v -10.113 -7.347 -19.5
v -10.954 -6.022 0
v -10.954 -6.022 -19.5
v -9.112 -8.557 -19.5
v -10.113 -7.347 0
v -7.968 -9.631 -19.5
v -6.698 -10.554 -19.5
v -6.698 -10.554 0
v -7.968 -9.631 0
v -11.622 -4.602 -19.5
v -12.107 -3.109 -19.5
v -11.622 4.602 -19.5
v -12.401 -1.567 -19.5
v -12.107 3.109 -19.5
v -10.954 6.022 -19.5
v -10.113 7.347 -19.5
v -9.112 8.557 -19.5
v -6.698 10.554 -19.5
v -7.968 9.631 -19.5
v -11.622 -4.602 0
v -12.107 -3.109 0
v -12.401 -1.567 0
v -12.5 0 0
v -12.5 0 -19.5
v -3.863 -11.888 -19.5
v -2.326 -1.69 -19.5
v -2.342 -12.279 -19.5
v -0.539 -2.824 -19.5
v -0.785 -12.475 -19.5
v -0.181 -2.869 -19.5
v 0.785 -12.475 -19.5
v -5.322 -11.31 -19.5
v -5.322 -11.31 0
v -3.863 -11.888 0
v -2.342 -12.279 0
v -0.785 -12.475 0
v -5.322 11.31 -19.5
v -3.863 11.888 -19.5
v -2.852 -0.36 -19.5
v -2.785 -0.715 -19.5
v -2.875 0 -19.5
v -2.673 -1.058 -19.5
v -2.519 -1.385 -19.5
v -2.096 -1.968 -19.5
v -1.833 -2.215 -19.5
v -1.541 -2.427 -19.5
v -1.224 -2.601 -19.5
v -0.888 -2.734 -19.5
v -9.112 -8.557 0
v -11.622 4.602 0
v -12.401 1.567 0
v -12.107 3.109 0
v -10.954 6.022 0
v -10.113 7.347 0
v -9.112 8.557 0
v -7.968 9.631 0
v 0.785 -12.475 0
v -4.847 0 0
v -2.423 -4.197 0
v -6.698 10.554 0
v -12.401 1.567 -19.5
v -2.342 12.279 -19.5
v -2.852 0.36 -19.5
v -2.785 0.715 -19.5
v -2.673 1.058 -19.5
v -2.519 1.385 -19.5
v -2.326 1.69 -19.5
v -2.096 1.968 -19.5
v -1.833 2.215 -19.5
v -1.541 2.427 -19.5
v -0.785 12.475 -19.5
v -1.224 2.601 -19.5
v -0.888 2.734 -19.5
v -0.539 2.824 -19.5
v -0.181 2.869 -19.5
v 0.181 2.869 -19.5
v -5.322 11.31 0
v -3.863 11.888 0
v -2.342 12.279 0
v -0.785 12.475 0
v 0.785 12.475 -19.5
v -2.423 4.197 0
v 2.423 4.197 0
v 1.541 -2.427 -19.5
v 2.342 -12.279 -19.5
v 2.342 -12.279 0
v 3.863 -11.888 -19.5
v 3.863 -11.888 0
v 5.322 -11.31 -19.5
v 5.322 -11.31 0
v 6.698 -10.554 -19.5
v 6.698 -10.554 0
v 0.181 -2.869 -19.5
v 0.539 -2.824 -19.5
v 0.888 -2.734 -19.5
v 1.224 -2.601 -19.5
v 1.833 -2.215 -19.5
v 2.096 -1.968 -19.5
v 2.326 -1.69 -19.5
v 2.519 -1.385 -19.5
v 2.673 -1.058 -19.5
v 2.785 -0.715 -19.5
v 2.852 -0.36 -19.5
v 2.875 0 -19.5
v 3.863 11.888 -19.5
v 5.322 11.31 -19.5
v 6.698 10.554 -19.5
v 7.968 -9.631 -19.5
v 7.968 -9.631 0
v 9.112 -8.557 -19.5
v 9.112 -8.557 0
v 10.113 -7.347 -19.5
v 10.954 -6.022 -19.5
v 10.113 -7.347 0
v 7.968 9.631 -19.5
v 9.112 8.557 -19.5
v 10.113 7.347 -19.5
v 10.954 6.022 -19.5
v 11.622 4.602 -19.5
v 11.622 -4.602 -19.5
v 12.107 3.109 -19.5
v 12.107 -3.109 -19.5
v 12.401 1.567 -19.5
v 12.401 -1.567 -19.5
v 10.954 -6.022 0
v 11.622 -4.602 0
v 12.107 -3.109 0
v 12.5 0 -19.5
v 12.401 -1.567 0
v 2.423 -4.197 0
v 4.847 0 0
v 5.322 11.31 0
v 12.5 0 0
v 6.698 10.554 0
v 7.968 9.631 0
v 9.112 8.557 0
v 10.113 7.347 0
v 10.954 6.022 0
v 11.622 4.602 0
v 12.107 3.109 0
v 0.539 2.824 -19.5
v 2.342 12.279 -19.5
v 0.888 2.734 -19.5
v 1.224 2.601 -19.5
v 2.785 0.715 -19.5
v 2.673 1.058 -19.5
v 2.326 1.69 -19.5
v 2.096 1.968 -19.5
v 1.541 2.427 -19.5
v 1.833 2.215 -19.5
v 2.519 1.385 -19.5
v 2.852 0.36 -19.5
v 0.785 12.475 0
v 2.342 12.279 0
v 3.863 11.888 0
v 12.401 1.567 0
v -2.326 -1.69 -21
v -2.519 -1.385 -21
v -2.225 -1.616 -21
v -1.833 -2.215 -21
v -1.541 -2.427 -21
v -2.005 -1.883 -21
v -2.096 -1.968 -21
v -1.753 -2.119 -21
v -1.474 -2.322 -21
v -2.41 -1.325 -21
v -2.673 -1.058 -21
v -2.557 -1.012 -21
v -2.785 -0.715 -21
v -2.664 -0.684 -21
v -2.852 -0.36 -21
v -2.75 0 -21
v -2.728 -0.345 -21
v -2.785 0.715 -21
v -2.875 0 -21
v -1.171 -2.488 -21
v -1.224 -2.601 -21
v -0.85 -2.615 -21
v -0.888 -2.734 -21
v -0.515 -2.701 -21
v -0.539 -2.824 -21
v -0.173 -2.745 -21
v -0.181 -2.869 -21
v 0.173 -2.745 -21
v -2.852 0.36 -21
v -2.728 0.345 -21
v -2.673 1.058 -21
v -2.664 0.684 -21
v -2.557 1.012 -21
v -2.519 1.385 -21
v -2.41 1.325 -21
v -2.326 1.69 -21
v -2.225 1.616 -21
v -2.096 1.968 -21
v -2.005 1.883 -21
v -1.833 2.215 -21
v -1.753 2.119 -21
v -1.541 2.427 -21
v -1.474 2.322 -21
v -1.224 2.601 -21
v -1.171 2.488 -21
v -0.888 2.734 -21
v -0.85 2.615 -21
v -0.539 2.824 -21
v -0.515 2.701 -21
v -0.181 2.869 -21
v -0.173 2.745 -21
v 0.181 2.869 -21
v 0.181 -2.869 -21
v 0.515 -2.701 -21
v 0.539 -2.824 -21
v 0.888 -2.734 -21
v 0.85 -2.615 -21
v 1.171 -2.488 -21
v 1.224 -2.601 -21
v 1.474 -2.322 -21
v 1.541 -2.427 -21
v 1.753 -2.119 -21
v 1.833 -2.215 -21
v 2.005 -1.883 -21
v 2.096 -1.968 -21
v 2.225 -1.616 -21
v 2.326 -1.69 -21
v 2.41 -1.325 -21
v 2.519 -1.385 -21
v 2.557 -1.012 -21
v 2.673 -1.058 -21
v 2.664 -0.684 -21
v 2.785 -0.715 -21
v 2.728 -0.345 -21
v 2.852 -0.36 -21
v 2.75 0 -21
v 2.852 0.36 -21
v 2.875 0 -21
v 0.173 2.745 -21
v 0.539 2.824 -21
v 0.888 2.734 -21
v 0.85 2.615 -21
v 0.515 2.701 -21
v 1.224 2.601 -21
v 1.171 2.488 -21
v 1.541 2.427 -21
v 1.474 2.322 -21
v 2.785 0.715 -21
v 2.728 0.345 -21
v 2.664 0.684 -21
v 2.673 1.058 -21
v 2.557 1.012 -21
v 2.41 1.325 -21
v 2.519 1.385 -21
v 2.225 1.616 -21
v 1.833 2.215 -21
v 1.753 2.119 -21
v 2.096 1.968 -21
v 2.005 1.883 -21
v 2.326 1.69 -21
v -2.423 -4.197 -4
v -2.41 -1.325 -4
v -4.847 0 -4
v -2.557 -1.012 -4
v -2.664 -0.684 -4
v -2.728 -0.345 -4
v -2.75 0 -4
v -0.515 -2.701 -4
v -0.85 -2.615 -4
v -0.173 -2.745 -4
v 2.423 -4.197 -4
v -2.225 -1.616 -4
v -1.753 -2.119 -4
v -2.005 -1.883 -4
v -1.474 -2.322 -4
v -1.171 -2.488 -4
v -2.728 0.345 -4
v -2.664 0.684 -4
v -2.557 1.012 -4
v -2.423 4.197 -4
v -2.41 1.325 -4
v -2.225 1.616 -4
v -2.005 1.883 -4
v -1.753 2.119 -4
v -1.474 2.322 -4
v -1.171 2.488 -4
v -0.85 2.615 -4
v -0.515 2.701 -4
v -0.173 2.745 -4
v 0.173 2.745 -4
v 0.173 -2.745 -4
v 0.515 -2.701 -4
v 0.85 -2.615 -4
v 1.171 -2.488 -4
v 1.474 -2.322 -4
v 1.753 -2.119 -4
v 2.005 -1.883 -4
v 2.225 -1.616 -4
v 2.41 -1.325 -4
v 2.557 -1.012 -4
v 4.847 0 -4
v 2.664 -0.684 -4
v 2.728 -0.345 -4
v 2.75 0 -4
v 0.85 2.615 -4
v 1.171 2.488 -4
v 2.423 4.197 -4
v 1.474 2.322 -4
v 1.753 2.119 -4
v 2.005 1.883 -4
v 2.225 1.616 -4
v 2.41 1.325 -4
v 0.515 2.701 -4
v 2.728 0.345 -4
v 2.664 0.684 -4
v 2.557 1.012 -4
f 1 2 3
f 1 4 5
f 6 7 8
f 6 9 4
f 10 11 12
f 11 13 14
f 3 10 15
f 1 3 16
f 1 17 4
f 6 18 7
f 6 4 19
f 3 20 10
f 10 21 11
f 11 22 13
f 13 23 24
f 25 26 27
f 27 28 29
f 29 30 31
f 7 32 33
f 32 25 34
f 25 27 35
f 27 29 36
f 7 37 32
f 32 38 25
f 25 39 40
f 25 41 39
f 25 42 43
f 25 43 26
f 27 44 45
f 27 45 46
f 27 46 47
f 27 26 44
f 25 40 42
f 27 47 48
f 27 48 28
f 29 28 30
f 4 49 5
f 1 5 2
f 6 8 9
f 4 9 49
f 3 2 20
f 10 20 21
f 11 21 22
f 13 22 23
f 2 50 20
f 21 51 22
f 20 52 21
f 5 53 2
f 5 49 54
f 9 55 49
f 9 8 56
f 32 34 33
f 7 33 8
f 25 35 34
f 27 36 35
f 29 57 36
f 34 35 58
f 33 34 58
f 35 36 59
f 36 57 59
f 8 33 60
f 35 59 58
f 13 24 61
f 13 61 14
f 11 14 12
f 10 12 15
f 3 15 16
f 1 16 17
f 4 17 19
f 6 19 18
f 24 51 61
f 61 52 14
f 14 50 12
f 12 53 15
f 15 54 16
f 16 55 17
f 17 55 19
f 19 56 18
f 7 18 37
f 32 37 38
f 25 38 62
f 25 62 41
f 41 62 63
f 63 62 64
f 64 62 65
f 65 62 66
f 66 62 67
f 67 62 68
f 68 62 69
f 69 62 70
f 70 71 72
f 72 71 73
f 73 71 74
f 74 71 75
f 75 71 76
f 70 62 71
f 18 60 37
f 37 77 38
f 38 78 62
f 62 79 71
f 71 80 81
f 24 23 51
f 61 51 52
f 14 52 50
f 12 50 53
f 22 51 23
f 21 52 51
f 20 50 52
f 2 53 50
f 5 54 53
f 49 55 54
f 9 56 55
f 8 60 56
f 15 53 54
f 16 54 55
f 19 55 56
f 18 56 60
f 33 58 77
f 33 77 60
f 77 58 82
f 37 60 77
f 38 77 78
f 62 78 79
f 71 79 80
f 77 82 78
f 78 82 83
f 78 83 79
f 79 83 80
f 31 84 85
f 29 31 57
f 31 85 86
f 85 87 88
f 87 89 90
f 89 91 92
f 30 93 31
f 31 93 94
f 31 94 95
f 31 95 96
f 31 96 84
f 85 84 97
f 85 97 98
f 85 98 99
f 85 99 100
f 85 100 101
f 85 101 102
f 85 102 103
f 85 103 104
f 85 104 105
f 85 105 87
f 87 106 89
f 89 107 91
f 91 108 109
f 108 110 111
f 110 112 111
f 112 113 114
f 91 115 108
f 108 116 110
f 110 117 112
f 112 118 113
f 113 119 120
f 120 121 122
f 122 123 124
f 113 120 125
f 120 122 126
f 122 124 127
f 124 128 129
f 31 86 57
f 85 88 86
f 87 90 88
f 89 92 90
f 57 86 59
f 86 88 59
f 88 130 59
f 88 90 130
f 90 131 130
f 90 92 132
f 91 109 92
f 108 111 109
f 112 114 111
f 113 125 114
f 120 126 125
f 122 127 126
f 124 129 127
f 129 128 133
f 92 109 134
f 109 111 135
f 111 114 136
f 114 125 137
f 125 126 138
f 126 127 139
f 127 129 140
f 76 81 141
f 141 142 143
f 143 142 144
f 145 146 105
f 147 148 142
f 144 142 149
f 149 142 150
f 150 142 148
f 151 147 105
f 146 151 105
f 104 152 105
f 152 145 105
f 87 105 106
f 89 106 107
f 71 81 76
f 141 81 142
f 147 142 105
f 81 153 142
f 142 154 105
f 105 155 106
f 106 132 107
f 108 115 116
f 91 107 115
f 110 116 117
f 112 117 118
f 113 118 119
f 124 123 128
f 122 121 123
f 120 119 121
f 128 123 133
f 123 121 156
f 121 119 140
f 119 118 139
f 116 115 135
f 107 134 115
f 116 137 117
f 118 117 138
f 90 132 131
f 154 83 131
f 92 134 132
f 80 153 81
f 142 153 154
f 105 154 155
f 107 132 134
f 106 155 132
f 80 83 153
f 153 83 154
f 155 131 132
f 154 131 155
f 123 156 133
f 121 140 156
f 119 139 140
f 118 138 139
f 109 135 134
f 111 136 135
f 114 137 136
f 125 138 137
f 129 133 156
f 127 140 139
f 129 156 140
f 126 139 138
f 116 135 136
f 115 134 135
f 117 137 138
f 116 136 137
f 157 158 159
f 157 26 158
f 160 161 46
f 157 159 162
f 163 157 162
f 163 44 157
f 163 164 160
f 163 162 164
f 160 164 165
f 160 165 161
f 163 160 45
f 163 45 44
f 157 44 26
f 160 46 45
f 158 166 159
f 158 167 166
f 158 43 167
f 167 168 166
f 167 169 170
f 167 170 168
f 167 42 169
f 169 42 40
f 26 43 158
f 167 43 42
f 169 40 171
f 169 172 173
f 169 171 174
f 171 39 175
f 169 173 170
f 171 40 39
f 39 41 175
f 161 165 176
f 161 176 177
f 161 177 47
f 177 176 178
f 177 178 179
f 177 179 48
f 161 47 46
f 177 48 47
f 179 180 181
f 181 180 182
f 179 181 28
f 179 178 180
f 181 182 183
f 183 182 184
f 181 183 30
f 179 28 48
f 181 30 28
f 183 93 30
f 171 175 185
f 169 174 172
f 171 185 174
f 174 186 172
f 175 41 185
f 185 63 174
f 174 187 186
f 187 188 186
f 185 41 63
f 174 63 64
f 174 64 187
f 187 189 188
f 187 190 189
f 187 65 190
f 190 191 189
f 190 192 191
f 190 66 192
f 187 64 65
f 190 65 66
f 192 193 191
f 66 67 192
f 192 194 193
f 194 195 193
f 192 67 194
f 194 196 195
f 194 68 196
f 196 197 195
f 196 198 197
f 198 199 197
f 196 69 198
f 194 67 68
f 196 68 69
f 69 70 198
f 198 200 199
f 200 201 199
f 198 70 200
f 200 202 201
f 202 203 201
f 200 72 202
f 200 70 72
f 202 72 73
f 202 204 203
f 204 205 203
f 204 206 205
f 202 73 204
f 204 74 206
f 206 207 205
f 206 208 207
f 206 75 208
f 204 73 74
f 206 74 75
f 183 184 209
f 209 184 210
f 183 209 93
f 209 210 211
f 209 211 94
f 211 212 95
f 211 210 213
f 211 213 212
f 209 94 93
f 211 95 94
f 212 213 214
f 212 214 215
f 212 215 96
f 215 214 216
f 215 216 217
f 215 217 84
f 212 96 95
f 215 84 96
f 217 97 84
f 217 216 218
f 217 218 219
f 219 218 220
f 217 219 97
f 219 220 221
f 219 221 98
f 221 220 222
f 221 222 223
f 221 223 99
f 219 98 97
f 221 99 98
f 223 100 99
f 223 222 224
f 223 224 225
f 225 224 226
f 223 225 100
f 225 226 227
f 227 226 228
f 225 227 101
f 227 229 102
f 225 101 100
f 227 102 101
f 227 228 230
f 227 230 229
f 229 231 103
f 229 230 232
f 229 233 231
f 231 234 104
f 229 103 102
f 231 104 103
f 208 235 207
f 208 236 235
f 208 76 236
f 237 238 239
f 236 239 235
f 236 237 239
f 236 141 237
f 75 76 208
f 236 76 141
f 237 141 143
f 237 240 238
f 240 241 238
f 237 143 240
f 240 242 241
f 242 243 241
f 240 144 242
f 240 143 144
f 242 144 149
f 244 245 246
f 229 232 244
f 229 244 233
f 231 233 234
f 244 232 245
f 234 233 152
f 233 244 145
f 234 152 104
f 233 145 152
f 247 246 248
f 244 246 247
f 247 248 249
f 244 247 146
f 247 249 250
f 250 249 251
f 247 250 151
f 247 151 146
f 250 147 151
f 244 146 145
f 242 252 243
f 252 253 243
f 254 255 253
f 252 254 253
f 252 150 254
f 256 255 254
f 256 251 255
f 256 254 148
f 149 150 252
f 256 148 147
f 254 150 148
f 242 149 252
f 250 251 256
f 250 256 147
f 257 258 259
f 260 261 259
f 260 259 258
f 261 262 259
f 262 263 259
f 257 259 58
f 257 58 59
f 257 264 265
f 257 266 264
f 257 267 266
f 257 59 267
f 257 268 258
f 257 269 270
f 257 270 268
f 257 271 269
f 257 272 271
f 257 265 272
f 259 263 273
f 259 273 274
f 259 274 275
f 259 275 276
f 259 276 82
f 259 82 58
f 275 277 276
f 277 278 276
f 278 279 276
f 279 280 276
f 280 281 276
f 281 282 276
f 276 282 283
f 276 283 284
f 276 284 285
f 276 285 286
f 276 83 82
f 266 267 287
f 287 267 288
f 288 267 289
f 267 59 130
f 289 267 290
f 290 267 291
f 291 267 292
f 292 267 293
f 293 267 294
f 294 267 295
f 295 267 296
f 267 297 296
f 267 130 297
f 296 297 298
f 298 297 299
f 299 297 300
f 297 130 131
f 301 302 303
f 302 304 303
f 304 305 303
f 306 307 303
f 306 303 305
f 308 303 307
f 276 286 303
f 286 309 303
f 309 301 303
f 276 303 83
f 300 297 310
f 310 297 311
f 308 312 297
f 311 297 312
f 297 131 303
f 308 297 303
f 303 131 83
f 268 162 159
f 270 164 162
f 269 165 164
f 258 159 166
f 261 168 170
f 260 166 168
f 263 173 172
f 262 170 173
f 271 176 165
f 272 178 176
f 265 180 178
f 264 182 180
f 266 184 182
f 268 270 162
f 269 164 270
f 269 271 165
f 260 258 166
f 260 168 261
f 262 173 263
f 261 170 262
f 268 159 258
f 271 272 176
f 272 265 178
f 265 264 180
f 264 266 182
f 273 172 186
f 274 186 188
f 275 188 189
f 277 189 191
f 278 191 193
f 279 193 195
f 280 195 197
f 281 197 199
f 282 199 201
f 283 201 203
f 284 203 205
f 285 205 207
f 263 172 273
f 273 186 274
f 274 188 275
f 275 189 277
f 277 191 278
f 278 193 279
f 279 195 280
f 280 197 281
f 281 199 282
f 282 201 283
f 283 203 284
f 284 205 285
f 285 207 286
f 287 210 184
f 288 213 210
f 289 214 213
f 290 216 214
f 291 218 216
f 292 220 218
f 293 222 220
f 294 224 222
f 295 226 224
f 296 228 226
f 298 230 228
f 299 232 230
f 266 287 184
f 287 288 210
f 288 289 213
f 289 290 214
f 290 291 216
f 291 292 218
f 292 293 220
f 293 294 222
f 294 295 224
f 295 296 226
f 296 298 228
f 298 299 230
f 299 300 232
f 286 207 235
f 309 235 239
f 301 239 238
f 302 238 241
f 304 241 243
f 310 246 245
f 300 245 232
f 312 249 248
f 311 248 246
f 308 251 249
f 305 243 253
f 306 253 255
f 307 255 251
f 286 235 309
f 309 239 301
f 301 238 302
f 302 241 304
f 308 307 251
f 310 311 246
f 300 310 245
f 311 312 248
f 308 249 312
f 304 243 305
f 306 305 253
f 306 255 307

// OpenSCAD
$fn = 50;


difference() {
	union() {
		translate(v = [0, 0, -19.5000000000]) {
			cylinder(h = 19.5000000000, r = 12.5000000000);
		}
		#translate(v = [0, 0, -21.0000000000]) {
			cylinder(h = 21, r = 2.8750000000);
		}
	}
	union() {
		translate(v = [0, 0, 0]) {
			rotate(a = [0, 0, 0]) {
				difference() {
					union() {
						translate(v = [0, 0, -4]) {
							linear_extrude(height = 4) {
								polygon(points = [[4.8468000000, 0.0000000000], [2.4234000000, 4.1974519271], [-2.4234000000, 4.1974519271], [-4.8468000000, 0.0000000000], [-2.4234000000, -4.1974519271], [2.4234000000, -4.1974519271]]);
							}
						}
					}
					union();
				}
			}
		}
		#translate(v = [0, 0, -100.0000000000]) {
			cylinder(h = 200, r = 2.7500000000);
		}
	}
}
